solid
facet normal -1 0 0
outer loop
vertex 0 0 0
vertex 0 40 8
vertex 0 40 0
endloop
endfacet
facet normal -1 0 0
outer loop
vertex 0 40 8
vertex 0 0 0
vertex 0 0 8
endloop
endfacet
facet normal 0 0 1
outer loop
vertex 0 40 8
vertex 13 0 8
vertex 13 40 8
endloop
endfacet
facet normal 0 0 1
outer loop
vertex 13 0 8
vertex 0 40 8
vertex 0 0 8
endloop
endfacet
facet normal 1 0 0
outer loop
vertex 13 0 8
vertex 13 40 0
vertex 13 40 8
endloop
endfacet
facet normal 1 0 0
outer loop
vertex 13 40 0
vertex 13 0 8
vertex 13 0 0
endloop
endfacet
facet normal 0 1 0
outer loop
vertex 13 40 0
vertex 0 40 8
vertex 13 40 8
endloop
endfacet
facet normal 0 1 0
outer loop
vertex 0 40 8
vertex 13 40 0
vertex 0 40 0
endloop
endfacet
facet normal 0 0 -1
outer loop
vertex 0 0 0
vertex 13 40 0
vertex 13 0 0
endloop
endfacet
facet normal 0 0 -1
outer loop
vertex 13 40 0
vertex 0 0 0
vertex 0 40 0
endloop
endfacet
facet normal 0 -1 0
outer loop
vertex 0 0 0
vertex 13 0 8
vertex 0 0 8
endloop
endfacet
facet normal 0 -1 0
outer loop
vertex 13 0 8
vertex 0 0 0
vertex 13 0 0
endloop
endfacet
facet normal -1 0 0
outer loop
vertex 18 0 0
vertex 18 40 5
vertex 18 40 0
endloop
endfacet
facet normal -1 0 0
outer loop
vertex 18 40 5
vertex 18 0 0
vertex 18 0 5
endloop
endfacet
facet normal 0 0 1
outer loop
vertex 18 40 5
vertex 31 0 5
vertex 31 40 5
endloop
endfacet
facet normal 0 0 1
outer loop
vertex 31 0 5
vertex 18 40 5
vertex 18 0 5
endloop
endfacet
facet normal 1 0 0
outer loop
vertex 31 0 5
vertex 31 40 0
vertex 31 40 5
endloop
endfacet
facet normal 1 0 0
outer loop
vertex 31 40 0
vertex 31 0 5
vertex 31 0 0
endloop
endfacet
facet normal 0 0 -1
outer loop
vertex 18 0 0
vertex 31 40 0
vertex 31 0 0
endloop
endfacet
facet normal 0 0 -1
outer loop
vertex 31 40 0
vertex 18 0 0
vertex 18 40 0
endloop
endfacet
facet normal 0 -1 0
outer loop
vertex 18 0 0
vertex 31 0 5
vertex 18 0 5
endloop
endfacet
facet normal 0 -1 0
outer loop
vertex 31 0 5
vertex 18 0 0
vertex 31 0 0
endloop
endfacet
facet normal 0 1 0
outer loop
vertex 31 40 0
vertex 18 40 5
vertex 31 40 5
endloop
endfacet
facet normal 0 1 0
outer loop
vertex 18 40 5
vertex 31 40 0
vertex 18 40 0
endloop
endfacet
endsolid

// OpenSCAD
// Spacers for assembling ARM PRO MINI TERSTER.

w = 13;
l = 40;  
h1 = 8;  // Between traget board and tester auxilary board
h2 = 5;  // Between tester auxilary and main boards.

color("red") cube([w, l, h1]);

translate([w + 5, 0, 0]) color("blue") cube([w, l, h2]);
